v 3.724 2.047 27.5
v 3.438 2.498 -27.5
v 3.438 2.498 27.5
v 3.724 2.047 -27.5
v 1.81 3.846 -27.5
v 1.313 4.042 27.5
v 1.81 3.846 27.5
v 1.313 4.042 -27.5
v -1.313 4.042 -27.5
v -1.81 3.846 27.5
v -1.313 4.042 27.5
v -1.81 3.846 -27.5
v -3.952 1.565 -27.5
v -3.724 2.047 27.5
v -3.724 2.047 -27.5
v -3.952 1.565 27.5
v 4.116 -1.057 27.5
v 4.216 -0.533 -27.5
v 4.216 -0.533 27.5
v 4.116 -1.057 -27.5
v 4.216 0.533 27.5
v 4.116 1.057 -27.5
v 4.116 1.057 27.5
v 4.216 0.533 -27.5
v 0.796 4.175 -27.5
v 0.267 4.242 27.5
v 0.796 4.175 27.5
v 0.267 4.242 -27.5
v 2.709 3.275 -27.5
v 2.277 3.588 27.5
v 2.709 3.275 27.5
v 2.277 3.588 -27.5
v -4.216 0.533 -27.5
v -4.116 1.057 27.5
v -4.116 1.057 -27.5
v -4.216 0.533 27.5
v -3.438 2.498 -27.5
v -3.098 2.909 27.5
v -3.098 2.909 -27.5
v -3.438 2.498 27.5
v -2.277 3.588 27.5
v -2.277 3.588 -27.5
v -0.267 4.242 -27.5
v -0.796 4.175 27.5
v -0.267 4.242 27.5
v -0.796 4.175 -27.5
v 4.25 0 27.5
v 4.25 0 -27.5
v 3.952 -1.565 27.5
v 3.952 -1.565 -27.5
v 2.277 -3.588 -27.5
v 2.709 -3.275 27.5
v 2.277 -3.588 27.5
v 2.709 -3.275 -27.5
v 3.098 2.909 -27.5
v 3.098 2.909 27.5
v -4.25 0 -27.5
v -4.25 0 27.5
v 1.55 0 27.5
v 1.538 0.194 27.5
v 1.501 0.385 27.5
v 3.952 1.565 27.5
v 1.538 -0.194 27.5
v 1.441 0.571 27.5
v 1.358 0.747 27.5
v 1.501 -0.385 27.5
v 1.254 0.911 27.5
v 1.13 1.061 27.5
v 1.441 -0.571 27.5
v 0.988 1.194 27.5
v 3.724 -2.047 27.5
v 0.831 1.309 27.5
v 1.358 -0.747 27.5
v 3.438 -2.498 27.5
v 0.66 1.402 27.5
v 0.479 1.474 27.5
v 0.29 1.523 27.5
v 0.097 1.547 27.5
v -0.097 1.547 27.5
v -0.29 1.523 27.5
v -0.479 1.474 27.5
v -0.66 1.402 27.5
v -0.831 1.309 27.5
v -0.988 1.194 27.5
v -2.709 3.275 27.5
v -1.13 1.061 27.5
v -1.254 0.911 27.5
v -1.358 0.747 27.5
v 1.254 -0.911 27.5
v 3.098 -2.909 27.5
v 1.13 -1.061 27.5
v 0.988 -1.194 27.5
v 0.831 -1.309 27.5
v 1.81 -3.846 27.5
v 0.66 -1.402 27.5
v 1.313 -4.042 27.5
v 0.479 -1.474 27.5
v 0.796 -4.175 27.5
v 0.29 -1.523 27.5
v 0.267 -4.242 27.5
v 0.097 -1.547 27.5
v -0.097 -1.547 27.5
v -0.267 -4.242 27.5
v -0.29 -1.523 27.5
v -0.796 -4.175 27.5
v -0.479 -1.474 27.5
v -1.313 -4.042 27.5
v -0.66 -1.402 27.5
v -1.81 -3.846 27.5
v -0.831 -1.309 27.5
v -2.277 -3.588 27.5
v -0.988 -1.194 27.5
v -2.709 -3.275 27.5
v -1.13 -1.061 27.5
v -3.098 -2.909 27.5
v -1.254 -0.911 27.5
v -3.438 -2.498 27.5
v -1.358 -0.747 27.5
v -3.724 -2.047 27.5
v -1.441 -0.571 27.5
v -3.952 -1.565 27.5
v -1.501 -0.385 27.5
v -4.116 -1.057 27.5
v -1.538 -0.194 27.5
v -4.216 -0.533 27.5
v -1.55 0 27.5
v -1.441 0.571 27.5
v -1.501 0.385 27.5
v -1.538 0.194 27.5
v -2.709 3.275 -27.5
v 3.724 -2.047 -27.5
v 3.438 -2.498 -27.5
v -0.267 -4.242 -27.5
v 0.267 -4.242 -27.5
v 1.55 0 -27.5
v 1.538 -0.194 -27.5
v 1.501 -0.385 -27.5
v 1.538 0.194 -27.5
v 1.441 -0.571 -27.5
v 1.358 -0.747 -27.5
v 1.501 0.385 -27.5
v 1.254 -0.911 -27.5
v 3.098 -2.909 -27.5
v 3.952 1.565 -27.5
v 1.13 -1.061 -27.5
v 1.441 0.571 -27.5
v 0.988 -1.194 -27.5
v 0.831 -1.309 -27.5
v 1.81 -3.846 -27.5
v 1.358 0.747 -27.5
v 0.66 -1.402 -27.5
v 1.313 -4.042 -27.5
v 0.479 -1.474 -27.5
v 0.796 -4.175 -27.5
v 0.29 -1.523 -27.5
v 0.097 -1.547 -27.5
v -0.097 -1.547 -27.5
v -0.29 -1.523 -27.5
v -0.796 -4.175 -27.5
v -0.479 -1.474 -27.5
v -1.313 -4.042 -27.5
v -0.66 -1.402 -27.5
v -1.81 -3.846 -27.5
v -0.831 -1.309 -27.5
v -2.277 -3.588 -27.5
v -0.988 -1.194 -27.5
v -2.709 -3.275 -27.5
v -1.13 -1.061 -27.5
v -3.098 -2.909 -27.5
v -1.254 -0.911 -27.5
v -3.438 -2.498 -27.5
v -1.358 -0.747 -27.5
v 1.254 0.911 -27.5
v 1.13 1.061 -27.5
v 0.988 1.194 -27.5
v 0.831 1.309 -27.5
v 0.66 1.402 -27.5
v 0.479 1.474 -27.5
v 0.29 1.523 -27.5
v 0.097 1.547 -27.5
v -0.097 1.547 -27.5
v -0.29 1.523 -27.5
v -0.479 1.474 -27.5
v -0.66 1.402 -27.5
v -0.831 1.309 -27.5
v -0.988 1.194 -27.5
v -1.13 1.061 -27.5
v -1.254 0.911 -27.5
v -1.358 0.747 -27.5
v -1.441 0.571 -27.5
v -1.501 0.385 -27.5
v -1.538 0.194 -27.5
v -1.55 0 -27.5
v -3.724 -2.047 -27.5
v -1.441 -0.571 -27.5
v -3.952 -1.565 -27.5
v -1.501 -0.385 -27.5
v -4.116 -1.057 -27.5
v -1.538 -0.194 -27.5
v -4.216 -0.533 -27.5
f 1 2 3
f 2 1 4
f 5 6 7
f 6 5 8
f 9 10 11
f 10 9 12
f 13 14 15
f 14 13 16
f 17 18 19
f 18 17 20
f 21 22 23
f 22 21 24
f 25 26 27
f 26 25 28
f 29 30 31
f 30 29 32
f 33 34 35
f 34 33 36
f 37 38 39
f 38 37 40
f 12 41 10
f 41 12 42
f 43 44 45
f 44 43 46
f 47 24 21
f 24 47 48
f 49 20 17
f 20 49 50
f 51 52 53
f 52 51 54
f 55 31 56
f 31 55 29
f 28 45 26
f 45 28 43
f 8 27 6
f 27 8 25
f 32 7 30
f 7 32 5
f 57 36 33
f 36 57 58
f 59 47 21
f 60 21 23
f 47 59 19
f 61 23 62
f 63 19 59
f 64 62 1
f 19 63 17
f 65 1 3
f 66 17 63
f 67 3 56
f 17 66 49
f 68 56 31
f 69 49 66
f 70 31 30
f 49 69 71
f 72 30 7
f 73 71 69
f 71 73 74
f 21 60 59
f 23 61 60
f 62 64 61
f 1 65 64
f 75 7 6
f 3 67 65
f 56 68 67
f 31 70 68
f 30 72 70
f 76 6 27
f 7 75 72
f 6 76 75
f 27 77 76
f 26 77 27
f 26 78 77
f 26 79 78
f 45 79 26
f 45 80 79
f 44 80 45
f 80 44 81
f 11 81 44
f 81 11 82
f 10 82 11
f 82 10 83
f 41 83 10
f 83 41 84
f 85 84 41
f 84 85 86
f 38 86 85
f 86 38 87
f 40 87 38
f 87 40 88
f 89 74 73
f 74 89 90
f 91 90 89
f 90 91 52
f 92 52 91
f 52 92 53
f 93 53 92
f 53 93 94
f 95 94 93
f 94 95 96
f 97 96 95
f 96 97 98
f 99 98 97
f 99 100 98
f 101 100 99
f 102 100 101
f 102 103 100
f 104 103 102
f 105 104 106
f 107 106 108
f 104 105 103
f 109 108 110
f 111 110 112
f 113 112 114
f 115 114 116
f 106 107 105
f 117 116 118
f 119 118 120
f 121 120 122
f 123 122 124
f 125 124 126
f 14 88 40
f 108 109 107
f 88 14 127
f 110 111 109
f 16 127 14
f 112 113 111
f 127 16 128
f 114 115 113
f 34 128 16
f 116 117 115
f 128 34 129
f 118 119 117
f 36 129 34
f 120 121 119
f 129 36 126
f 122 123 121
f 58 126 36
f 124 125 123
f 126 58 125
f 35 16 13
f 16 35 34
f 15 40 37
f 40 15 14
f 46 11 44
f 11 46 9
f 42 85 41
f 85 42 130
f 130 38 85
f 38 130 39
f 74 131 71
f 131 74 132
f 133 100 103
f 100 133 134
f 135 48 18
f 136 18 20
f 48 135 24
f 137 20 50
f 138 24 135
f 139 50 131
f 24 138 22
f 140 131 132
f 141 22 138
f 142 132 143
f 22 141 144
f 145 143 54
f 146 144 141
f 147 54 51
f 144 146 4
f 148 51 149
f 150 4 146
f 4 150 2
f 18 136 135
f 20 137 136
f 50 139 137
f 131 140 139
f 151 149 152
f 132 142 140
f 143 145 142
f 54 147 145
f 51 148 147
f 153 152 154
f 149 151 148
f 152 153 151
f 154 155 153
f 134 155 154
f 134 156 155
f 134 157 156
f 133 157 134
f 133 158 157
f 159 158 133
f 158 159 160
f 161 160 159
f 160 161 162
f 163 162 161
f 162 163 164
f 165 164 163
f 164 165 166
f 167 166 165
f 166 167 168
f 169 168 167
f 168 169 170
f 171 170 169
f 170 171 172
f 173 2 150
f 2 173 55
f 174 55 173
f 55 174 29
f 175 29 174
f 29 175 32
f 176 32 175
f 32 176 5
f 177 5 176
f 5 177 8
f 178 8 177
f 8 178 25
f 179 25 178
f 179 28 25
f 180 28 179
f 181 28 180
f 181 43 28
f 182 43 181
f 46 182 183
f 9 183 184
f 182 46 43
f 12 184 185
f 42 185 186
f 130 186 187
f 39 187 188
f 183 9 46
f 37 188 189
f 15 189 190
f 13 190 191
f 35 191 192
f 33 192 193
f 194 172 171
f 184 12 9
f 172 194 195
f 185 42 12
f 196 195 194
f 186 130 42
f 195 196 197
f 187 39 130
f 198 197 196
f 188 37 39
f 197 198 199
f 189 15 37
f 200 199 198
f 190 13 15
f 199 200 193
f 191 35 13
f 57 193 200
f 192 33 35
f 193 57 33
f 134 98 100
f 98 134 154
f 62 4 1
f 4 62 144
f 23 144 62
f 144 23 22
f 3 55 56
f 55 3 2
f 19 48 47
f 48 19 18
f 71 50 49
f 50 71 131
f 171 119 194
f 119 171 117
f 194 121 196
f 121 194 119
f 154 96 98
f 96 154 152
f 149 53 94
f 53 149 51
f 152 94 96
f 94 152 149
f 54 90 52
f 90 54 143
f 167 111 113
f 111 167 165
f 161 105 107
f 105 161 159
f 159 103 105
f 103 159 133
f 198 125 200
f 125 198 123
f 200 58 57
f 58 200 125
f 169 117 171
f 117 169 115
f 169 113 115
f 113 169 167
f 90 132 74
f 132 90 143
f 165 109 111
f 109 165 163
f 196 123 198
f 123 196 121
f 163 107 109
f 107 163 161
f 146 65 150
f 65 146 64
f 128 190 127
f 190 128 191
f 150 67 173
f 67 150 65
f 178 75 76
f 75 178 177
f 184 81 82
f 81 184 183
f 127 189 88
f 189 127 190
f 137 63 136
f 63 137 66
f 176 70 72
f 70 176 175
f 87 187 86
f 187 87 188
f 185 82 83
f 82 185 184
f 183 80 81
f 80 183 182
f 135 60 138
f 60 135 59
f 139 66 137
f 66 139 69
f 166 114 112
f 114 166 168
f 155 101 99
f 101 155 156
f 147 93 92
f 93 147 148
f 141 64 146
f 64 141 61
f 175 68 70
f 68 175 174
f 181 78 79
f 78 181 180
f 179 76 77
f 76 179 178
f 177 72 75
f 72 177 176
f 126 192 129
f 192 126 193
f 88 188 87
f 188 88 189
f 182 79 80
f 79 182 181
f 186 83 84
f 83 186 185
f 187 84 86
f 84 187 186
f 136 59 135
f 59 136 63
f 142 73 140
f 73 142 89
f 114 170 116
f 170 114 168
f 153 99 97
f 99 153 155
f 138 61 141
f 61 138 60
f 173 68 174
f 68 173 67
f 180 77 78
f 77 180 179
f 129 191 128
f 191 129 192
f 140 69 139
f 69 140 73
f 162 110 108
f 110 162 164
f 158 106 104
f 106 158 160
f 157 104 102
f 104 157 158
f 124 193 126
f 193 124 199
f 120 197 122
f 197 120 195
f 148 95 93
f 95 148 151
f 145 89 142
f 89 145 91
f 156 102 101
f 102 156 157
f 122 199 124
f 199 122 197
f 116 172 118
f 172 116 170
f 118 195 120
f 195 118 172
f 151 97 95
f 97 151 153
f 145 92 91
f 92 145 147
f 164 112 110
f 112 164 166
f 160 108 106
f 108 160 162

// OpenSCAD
$fn = 50;


difference() {
	union() {
		translate(v = [0, 0, -27.5000000000]) {
			cylinder(h = 55, r = 4.2500000000);
		}
	}
	union() {
		translate(v = [0, 0, -100.0000000000]) {
			cylinder(h = 200, r = 1.5500000000);
		}
	}
}
